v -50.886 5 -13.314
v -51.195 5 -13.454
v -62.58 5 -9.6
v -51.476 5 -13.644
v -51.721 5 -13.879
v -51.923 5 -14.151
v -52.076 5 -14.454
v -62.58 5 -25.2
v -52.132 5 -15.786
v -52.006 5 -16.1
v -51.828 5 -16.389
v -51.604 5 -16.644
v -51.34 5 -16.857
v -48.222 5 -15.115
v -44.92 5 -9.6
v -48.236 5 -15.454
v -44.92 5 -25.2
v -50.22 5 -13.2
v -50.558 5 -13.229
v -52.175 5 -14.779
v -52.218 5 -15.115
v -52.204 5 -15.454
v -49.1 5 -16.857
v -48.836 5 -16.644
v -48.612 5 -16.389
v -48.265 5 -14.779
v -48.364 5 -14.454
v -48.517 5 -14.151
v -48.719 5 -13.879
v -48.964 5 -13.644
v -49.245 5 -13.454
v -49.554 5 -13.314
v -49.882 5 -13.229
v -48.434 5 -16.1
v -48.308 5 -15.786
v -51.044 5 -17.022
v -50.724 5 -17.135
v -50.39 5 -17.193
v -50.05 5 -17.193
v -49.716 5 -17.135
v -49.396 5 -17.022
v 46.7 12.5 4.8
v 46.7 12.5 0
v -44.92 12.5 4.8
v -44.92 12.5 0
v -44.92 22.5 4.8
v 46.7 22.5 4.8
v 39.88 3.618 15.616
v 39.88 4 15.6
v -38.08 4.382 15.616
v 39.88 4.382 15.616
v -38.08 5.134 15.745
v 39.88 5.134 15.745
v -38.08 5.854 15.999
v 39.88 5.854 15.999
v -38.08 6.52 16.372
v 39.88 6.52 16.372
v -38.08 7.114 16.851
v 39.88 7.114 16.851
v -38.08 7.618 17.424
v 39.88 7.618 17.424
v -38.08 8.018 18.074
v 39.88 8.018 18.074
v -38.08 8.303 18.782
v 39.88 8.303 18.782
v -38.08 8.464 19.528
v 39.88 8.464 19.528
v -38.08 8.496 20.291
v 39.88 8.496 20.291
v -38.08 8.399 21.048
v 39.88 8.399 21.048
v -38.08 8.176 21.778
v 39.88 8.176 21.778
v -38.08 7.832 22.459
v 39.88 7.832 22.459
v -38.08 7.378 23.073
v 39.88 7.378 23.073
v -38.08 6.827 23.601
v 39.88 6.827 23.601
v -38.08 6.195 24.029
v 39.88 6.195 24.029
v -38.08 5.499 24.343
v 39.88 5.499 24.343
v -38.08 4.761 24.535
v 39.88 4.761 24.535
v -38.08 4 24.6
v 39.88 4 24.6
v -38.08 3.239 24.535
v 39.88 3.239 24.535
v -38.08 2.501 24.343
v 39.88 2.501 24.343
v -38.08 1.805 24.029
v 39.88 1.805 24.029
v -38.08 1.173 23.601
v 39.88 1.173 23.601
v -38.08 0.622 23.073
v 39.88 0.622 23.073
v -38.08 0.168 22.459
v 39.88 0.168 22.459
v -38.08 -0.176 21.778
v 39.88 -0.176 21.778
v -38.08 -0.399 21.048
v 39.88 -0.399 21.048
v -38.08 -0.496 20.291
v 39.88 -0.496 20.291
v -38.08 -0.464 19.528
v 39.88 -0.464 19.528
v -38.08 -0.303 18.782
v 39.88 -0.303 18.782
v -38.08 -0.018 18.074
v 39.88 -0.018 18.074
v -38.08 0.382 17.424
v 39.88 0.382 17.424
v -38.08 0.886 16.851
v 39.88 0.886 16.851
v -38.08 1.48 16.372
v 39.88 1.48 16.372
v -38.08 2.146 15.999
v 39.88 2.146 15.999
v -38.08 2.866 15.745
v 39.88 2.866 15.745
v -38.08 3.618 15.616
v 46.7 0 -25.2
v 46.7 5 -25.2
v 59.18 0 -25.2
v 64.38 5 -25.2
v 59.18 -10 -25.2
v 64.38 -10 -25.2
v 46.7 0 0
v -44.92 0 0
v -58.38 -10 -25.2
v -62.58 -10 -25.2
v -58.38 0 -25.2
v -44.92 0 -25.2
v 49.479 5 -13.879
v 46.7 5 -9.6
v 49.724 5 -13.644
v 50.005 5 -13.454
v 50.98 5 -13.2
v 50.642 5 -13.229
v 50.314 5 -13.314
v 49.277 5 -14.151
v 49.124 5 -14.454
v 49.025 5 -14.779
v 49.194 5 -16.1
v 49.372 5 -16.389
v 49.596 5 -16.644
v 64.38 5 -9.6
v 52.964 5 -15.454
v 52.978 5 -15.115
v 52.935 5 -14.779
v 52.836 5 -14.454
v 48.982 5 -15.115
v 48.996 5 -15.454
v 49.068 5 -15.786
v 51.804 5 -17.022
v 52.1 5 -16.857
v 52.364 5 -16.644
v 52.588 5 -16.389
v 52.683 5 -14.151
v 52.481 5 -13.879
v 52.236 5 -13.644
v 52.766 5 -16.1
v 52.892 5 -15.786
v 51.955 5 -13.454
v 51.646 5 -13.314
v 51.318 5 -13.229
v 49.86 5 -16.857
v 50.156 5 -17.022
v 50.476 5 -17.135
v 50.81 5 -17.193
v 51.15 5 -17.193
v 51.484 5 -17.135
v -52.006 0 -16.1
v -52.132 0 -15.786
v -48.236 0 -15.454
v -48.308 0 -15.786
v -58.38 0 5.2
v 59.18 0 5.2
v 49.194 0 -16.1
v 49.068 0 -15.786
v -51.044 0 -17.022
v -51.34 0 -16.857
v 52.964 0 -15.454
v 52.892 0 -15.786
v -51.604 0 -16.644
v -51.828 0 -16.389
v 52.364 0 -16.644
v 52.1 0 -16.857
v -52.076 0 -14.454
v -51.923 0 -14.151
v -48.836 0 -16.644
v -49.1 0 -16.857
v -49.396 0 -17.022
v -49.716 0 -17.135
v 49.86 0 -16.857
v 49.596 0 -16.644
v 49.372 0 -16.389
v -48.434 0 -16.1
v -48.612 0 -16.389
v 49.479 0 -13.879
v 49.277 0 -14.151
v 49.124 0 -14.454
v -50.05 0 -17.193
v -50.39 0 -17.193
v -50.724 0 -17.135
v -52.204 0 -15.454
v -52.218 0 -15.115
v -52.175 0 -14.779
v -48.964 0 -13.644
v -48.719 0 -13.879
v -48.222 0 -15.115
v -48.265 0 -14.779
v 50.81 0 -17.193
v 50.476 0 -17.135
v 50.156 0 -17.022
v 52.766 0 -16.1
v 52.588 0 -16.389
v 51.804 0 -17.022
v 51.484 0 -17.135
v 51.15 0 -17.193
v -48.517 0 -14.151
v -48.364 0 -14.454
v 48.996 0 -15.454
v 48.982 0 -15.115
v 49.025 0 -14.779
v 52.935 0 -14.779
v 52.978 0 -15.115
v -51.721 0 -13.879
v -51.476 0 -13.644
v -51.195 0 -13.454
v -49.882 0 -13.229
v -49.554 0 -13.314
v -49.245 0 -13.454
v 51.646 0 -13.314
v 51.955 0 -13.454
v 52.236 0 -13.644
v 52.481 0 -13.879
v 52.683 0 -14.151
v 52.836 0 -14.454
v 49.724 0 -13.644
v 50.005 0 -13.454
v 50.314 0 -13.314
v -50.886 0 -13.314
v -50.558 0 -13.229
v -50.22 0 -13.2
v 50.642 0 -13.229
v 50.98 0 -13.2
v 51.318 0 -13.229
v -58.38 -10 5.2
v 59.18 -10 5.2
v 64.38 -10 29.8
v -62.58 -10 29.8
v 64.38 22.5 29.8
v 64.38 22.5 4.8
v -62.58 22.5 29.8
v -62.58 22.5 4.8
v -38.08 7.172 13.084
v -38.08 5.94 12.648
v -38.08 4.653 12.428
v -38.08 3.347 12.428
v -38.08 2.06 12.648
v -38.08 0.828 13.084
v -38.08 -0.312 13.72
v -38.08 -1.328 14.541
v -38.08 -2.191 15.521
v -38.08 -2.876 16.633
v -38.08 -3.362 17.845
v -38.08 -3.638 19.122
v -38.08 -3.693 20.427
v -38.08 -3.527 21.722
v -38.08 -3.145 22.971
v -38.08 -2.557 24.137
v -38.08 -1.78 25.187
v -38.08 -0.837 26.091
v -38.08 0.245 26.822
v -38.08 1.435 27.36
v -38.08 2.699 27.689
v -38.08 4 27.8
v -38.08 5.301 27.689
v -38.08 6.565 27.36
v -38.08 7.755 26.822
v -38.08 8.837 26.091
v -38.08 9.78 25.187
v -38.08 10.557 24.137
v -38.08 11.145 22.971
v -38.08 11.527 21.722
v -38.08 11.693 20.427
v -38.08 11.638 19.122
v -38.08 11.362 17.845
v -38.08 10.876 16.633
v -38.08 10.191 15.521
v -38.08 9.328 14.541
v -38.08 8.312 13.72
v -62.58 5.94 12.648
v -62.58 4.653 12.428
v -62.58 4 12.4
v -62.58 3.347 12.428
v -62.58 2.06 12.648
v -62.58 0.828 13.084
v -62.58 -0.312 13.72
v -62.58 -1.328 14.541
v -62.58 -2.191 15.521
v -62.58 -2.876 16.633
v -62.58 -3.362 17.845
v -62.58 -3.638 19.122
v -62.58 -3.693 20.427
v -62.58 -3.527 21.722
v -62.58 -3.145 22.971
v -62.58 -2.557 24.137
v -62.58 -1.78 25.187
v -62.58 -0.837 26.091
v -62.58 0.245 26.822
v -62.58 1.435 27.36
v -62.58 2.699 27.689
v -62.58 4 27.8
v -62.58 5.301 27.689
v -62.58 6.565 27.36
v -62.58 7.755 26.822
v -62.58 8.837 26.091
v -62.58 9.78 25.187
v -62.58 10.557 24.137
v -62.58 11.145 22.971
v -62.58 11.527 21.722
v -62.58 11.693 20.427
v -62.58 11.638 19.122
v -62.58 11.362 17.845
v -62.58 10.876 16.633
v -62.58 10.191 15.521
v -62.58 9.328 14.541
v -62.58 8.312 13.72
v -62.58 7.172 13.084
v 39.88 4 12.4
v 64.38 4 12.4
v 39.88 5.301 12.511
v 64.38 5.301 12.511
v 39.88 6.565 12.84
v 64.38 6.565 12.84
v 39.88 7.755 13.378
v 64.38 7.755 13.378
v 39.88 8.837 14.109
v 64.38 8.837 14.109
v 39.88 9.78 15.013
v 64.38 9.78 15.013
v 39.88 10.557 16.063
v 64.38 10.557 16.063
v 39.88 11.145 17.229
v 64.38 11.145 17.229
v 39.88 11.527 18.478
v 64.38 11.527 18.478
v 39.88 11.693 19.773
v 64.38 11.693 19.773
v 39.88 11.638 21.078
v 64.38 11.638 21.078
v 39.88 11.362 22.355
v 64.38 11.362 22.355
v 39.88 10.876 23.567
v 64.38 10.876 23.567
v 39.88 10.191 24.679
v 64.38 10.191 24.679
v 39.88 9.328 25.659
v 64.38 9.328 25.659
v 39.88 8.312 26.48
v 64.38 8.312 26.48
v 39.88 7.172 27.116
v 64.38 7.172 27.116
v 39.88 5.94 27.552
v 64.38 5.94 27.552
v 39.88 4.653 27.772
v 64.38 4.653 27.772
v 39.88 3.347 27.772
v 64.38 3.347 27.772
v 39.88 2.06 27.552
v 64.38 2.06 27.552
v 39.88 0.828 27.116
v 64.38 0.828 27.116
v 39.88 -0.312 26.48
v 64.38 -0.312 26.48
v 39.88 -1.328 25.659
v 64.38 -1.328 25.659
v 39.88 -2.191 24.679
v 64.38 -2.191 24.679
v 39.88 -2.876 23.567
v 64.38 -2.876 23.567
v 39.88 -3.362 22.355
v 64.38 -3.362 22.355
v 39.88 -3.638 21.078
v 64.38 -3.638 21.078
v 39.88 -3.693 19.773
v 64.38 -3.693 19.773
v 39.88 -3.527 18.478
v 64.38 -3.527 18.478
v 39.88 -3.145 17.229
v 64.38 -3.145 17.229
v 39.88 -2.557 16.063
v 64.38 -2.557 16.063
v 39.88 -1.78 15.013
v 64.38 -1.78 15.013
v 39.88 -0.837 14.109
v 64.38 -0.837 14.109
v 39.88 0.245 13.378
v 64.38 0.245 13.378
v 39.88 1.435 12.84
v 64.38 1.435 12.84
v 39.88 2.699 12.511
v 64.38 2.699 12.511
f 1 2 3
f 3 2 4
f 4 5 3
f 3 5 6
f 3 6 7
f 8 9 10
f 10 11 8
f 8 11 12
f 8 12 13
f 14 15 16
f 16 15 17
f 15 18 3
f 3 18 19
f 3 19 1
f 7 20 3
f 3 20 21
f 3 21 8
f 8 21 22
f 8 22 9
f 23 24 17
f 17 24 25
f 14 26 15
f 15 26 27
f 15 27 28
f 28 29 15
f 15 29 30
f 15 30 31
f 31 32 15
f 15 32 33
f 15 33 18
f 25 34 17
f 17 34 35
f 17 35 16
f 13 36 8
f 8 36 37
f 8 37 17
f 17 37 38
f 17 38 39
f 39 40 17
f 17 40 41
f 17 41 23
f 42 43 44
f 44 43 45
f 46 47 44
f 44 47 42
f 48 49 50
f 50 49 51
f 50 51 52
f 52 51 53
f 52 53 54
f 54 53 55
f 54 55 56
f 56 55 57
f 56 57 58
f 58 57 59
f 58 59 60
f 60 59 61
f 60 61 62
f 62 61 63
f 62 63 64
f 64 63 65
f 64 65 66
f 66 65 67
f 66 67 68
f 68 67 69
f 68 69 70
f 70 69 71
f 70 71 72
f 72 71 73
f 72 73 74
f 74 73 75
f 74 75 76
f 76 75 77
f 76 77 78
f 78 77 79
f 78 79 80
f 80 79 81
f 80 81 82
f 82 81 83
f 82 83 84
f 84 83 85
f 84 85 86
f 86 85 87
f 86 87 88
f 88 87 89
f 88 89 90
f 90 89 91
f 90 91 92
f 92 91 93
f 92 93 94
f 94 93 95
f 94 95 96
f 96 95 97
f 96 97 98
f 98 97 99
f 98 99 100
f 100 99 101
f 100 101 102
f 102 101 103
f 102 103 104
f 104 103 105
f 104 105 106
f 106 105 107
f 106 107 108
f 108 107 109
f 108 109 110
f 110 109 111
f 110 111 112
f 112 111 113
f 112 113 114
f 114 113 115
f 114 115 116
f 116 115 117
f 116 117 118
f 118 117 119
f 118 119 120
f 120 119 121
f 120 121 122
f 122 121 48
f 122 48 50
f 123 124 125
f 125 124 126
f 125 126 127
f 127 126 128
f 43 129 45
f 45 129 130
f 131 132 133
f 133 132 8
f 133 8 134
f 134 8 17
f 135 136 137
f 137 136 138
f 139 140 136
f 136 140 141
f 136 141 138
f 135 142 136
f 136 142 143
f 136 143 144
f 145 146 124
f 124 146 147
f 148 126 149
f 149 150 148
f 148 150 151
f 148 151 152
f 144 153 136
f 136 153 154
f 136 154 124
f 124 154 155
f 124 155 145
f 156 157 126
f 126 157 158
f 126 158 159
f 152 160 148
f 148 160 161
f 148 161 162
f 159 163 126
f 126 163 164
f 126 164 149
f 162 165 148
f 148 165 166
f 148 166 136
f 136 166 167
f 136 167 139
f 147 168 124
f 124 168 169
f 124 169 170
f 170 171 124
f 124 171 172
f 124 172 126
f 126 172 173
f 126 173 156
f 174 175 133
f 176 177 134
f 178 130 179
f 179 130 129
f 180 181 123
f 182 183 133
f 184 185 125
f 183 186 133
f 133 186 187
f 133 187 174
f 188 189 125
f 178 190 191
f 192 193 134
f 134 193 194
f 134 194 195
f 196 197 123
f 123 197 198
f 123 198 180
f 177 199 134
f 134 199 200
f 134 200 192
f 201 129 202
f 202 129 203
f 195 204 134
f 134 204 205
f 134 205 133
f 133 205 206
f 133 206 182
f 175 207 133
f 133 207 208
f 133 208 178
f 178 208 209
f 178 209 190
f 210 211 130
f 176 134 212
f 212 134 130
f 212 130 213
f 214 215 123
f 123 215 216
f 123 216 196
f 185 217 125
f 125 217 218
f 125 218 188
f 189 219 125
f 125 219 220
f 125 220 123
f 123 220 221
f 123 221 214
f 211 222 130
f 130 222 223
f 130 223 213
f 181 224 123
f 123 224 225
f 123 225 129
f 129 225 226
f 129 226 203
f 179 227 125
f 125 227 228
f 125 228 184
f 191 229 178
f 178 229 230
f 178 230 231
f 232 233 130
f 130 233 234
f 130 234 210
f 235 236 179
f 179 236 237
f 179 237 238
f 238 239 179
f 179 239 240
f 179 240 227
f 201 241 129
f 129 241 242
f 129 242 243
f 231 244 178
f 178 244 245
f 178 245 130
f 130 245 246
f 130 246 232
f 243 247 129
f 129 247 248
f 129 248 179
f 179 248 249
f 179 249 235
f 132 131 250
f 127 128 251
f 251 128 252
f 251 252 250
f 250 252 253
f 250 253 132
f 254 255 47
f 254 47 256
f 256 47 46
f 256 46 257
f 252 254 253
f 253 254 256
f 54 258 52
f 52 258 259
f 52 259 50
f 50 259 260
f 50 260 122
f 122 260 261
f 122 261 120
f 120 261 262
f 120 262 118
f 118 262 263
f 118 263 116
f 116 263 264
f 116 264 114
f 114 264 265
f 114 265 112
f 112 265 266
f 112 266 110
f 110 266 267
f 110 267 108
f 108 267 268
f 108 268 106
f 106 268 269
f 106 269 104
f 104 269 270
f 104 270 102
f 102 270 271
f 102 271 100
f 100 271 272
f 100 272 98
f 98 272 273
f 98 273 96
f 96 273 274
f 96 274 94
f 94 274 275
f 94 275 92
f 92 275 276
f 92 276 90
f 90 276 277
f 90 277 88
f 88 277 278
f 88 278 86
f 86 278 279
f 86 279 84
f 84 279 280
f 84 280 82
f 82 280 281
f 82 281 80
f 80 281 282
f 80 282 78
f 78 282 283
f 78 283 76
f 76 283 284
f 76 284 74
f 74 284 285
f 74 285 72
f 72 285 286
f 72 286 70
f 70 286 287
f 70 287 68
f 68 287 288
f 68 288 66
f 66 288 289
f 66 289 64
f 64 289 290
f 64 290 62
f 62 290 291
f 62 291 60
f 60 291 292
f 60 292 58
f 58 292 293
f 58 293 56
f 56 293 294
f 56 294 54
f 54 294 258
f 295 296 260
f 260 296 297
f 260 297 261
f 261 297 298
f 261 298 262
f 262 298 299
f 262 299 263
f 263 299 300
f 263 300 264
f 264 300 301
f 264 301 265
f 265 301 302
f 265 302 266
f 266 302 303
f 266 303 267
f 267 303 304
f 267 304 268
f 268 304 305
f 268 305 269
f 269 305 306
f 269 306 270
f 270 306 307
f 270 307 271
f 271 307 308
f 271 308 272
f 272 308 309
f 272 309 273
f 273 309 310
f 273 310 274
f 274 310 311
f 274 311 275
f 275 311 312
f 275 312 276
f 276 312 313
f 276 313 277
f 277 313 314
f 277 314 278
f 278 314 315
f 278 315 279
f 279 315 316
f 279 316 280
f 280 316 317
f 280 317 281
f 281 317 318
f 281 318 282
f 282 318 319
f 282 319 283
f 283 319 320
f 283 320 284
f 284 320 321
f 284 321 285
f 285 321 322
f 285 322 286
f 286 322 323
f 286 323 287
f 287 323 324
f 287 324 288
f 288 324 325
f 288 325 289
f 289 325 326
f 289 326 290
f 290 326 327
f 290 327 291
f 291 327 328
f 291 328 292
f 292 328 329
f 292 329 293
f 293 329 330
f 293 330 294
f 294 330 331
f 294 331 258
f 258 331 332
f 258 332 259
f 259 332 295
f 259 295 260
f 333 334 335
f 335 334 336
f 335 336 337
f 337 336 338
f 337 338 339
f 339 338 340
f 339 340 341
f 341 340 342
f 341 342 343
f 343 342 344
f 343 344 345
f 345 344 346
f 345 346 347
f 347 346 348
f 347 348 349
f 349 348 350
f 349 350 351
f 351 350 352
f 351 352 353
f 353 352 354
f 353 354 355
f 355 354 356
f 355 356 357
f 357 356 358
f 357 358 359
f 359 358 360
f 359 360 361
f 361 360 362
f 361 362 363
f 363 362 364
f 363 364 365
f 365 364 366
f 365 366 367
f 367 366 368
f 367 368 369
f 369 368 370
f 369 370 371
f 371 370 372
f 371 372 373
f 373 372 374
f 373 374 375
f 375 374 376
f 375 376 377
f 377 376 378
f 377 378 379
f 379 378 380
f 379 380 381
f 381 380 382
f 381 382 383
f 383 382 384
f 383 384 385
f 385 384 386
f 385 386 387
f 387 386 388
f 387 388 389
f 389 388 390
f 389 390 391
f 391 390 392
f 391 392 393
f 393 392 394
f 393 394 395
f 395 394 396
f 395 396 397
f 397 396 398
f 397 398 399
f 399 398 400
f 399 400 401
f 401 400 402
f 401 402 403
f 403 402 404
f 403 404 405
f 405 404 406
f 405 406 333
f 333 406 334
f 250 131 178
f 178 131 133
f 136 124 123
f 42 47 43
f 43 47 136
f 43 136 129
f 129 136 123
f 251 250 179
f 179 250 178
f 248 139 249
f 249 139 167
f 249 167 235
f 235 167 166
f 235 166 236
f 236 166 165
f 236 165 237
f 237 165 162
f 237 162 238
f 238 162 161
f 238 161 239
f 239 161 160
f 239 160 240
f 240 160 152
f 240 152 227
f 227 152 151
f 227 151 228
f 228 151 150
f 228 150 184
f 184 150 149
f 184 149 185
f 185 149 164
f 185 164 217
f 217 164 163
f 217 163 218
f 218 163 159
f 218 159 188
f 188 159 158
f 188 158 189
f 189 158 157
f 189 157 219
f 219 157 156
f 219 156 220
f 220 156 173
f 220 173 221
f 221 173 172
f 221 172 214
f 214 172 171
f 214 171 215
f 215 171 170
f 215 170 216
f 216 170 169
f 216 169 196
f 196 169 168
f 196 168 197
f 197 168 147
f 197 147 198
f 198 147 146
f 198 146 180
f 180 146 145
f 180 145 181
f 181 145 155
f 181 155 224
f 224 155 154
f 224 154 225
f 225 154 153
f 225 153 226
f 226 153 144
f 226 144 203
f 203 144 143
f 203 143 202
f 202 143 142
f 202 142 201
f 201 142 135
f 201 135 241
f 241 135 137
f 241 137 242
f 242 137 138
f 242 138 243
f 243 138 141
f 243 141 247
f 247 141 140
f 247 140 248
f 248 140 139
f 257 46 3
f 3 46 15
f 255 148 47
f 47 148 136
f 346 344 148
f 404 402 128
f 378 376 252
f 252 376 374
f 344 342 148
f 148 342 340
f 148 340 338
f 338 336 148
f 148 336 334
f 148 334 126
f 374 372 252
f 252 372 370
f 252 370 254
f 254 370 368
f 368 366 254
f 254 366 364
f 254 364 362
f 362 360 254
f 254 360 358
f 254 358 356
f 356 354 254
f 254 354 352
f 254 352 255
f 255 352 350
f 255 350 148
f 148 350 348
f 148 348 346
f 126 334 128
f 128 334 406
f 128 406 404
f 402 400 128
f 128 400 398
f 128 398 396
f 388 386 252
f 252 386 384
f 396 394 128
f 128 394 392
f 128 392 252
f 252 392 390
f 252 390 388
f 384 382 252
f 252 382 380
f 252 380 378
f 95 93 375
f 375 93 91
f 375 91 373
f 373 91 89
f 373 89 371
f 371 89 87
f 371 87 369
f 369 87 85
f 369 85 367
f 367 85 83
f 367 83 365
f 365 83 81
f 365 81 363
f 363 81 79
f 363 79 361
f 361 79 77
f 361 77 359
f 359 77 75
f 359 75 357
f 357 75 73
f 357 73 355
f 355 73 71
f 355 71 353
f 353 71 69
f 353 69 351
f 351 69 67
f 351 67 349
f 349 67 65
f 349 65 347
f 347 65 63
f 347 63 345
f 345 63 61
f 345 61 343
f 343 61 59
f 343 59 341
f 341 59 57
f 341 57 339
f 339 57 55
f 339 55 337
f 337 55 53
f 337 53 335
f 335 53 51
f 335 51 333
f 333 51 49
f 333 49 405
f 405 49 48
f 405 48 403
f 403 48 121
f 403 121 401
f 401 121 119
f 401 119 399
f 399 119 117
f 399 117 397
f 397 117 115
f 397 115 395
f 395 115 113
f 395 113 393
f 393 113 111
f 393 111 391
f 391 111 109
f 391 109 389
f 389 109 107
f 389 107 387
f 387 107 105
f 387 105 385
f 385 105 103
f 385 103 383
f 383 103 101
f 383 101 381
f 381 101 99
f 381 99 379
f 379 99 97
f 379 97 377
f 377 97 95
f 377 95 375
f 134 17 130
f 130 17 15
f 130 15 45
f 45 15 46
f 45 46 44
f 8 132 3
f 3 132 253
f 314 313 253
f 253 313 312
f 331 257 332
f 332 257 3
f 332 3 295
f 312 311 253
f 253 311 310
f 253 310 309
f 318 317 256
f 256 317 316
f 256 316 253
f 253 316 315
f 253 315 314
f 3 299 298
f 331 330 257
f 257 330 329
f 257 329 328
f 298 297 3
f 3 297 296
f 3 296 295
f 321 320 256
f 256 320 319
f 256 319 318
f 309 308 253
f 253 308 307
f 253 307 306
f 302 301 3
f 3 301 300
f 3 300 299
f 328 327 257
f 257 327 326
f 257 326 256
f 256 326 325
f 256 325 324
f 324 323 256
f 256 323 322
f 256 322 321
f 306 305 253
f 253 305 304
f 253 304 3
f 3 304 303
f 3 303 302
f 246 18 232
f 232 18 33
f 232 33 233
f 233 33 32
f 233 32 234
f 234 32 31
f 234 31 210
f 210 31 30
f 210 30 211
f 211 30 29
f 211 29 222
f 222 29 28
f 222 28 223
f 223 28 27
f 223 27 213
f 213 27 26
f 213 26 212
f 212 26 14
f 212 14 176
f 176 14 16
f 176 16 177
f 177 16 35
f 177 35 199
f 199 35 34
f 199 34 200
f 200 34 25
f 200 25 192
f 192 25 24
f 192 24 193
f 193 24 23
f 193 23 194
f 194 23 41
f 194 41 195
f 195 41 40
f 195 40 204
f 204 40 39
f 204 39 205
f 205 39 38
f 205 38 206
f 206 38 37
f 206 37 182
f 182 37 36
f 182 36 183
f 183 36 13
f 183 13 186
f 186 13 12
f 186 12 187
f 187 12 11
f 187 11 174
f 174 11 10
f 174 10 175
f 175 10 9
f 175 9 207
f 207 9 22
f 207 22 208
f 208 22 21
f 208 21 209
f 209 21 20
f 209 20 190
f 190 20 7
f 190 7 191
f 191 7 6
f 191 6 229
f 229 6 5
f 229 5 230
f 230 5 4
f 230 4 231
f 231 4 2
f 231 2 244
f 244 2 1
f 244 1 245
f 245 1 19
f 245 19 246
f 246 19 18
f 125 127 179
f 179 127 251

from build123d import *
from build123d.topology import SkipClean

# Parameters (mm, degrees)
SALIENTE_EXTRUIR1_DEPTH  = 5
SALIENTE_EXTRUIR3_DEPTH  = 5
SALIENTE_EXTRUIR4_DEPTH  = 12.5
CROQUIS2_W               = 12.6
CROQUIS2_H               = 5
CORTAR_EXTRUIR1_DEPTH    = 127.5
CROQUIS3_W               = 4.8
CROQUIS3_H               = 5
CORTAR_EXTRUIR2_DEPTH    = 255
CROQUIS4_W               = 116.76
CROQUIS4_H               = 32.5
SALIENTE_EXTRUIR5_DEPTH  = 25
CROQUIS5_R               = 4.5
CORTAR_EXTRUIR3_DEPTH    = 155
CROQUIS6_R               = 7.7
CORTAR_EXTRUIR4_DEPTH    = 20.3
CROQUIS7_R               = 7.7
SALIENTE_EXTRUIR6_DEPTH  = 5
CORTAR_EXTRUIR5_DEPTH    = 25.2
CROQUIS9_W               = 1
CROQUIS9_H               = 10
CORTAR_EXTRUIR6_DEPTH    = 4.8
CROQUIS10_W              = 117.76
CROQUIS10_H              = 0.4
CORTAR_EXTRUIR7_DEPTH    = 10
CROQUIS11_R              = 2
CORTAR_EXTRUIR8_DEPTH    = 10
CROQUIS12_W              = 3
CROQUIS12_H              = 7.5
CORTAR_EXTRUIR9_DEPTH    = 220
CORTAR_EXTRUIR10_DEPTH   = 220
SALIENTE_EXTRUIR7_DEPTH  = 16.68
SALIENTE_EXTRUIR8_START  = 1
CROQUIS15_R              = 7.7
SALIENTE_EXTRUIR8_DEPTH  = 1
SALIENTE_EXTRUIR9_START  = 1.8
CROQUIS16_R              = 7.7
CROQUIS16_R_2            = 4.5
SALIENTE_EXTRUIR9_DEPTH  = 1.8
SALIENTE_EXTRUIR10_DEPTH = 1
CROQUIS18_W              = 0.78
CROQUIS18_H              = 5
SALIENTE_EXTRUIR11_DEPTH = 31
SALIENTE_EXTRUIR12_DEPTH = 0.78
CORTAR_EXTRUIR11_DEPTH   = 220.78
CROQUIS21_R              = 2
CORTAR_EXTRUIR12_DEPTH   = 220.78
CROQUIS22_W              = 0.2
CROQUIS22_H              = 10
SALIENTE_EXTRUIR13_DEPTH = 30.78


with BuildPart() as part:
    # Croquis1 → Saliente-Extruir1 (new body)
    with BuildSketch(Plane(origin=(0, 0, 0), x_dir=(1, 0, 0), z_dir=(0, 1, 0))):
        Polygon((-45.7, 25.2), (-58.38, 25.2), (-58.38, -4.8), (58.38, -4.8), (58.38, 25.2), (45.7, 25.2), (45.7, 0), (-45.7, 0), align=None)
    extrude(amount=SALIENTE_EXTRUIR1_DEPTH)

    # Croquis1<4> → Saliente-Extruir3 (add)
    with BuildSketch(Plane(origin=(0, 0, 0), x_dir=(1, 0, 0), z_dir=(0, 1, 0))):
        Polygon((-45.7, 12.6), (-58.38, 12.6), (-58.38, -4.8), (58.38, -4.8), (58.38, 12.6), (45.7, 12.6), (45.7, 0), (-45.7, 0), align=None)
    extrude(amount=-SALIENTE_EXTRUIR3_DEPTH)

    # Croquis1<5> → Saliente-Extruir4 (add)
    with BuildSketch(Plane(origin=(0, 0, 0), x_dir=(1, 0, 0), z_dir=(0, 1, 0))):
        Polygon((-45.7, 12.6), (-58.38, 12.6), (-58.38, -4.8), (58.38, -4.8), (58.38, 12.6), (45.7, 12.6), (45.7, 0), (-45.7, 0), align=None)
    extrude(amount=SALIENTE_EXTRUIR4_DEPTH)

    # Croquis2 → Cortar-Extruir1 (cut, symmetric)
    with BuildSketch(Plane.ZY.offset(-45.7)):
        with Locations((-6.3, -2.5)):
            Rectangle(CROQUIS2_W, CROQUIS2_H)
    extrude(amount=CORTAR_EXTRUIR1_DEPTH, both=True, mode=Mode.SUBTRACT)

    # Croquis3 → Cortar-Extruir2 (cut)
    with BuildSketch(Plane.ZY.offset(58.38)):
        with Locations((2.4, -2.5)):
            Rectangle(CROQUIS3_W, CROQUIS3_H)
    extrude(amount=-CORTAR_EXTRUIR2_DEPTH, mode=Mode.SUBTRACT)

    # Croquis4 → Saliente-Extruir5 (add)
    with BuildSketch(Plane.XY.offset(4.8)):
        with Locations((0, 6.25)):
            Rectangle(CROQUIS4_W, CROQUIS4_H)
    extrude(amount=SALIENTE_EXTRUIR5_DEPTH)

    # Croquis5 → Cortar-Extruir3 (cut)
    with BuildSketch(Plane.ZY.offset(58.38)):
        with Locations((20.1, 4)):
            Circle(CROQUIS5_R)
    extrude(amount=-CORTAR_EXTRUIR3_DEPTH, mode=Mode.SUBTRACT)

    # Croquis6 → Cortar-Extruir4 (cut)
    with BuildSketch(Plane.ZY.offset(58.38)):
        with Locations((20.1, 4)):
            Circle(CROQUIS6_R)
    cortar_extruir4 = extrude(amount=-CORTAR_EXTRUIR4_DEPTH, mode=Mode.SUBTRACT)

    # Simetría1: Cortar-Extruir4 across plane
    add(cortar_extruir4.mirror(Plane(origin=(0, 0, 0), x_dir=(0, 0, 1), z_dir=(1, 0, 0))), mode=Mode.SUBTRACT)

    # Croquis7 → Saliente-Extruir6 (add)
    with BuildSketch(Plane.ZY.offset(58.38)):
        Polygon((-25.2, 5), (-25.2, -10), (29.8, -10), (29.8, 22.5), (4.8, 22.5), (4.8, 12.5), (-12.6, 12.5), (-12.6, 5), align=None)
        with Locations((20.1, 4)):
            Circle(CROQUIS7_R, mode=Mode.SUBTRACT)
    saliente_extruir6 = extrude(amount=SALIENTE_EXTRUIR6_DEPTH)

    # Simetría2: Saliente-Extruir6 across plane
    add(saliente_extruir6.mirror(Plane(origin=(0, 0, 0), x_dir=(0, 0, 1), z_dir=(1, 0, 0))))

    # Croquis8 → Cortar-Extruir5 (cut)
    with BuildSketch(Plane(origin=(0, 0, -25.2), x_dir=(-1, 0, 0), z_dir=(0, 0, -1))):
        Polygon((-58.38, -10), (-59.38, -10), (-59.38, 0), (-58.38, 0), (-46.7, 0), (-46.7, 5), (-46.7, 12.5), (-42.184789705, 12.5), (-42.184789705, -10), align=None)
    extrude(amount=-CORTAR_EXTRUIR5_DEPTH, mode=Mode.SUBTRACT)

    # Croquis9 → Cortar-Extruir6 (cut)
    with BuildSketch(Plane(origin=(0, 0, 0), x_dir=(-1, 0, 0), z_dir=(0, 0, -1))):
        with Locations((-58.88, -5)):
            Rectangle(CROQUIS9_W, CROQUIS9_H)
    extrude(amount=-CORTAR_EXTRUIR6_DEPTH, mode=Mode.SUBTRACT)

    # Croquis10 → Cortar-Extruir7 (cut)
    with BuildSketch(Plane.XZ.offset(10)):
        with Locations((0.5, 5)):
            Rectangle(CROQUIS10_W, CROQUIS10_H)
    extrude(amount=-CORTAR_EXTRUIR7_DEPTH, mode=Mode.SUBTRACT)

    # Croquis11 → Cortar-Extruir8 (cut)
    with BuildSketch(Plane(origin=(0, 5, 0), x_dir=(1, 0, 0), z_dir=(0, 1, 0))):
        with Locations((50.98, 15.2)):
            Circle(CROQUIS11_R)
    extrude(amount=-CORTAR_EXTRUIR8_DEPTH, mode=Mode.SUBTRACT)

    # Croquis12 → Cortar-Extruir9 (cut)
    with BuildSketch(Plane(origin=(63.38, 0, 0), x_dir=(0, 0, -1), z_dir=(1, 0, 0))):
        with Locations((11.1, 8.75)):
            Rectangle(CROQUIS12_W, CROQUIS12_H)
    extrude(amount=-CORTAR_EXTRUIR9_DEPTH, mode=Mode.SUBTRACT)

    # Croquis13 → Cortar-Extruir10 (cut)
    with BuildSketch(Plane(origin=(63.38, 0, 0), x_dir=(0, 0, -1), z_dir=(1, 0, 0))):
        Polygon((9.6, 12.5), (9.6, 5), (-4.8, 22.5), (9.6, 22.5), align=None)
    extrude(amount=-CORTAR_EXTRUIR10_DEPTH, mode=Mode.SUBTRACT)

    # Croquis14 → Saliente-Extruir7 (add)
    with BuildSketch(Plane(origin=(63.38, 0, 0), x_dir=(0, 0, -1), z_dir=(1, 0, 0))):
        Polygon((-4.8, 22.5), (3.428571429, 12.5), (-4.8, 12.5), align=None)
    saliente_extruir7 = extrude(amount=-SALIENTE_EXTRUIR7_DEPTH)

    # Simetría4: Saliente-Extruir7 across plane
    add(saliente_extruir7.mirror(Plane(origin=(0, 0, 0), x_dir=(0, 0, 1), z_dir=(1, 0, 0))))

    # Croquis15 → Saliente-Extruir8 (add)
    with SkipClean():  # the faces are left unmerged after this step: merging them gives an invalid solid
        with BuildSketch(Plane(origin=(63.38, 0, 0), x_dir=(0, 0, -1), z_dir=(1, 0, 0)).offset(SALIENTE_EXTRUIR8_START)):
            Polygon((-29.8, 22.5), (-4.8, 22.5), (9.6, 5), (25.2, 5), (25.2, -10), (-29.8, -10), align=None)
            with Locations((-20.1, 4)):
                Circle(CROQUIS15_R, mode=Mode.SUBTRACT)
        extrude(amount=-SALIENTE_EXTRUIR8_DEPTH)

    # Croquis16 → Saliente-Extruir9 (add)
    with BuildSketch(Plane(origin=(38.08, 0, 0), x_dir=(0, 0, -1), z_dir=(1, 0, 0)).offset(SALIENTE_EXTRUIR9_START)):
        with Locations((-20.1, 4)):
            Circle(CROQUIS16_R)
        with Locations((-20.1, 4)):
            Circle(CROQUIS16_R_2, mode=Mode.SUBTRACT)
    extrude(amount=-SALIENTE_EXTRUIR9_DEPTH)

    # Croquis17 → Saliente-Extruir10 (add)
    with BuildSketch(Plane(origin=(-46.7, 0, 0), x_dir=(0, 0, -1), z_dir=(1, 0, 0))):
        Polygon((-4.8, 12.5), (3.428571429, 12.5), (-4.8, 22.5), align=None)
    extrude(amount=SALIENTE_EXTRUIR10_DEPTH)

    # Croquis18 → Saliente-Extruir11 (add)
    with BuildSketch(Plane(origin=(0, 0, -25.2), x_dir=(-1, 0, 0), z_dir=(0, 0, -1))):
        with Locations((45.31, 2.5)):
            Rectangle(CROQUIS18_W, CROQUIS18_H)
    extrude(amount=-SALIENTE_EXTRUIR11_DEPTH)

    # Croquis19 → Saliente-Extruir12 (add)
    with BuildSketch(Plane(origin=(-45.7, 0, 0), x_dir=(0, 0, -1), z_dir=(1, 0, 0))):
        Polygon((0, 5), (9.6, 5), (-4.8, 22.5), (-4.8, 12.5), (0, 12.5), align=None)
    extrude(amount=SALIENTE_EXTRUIR12_DEPTH)

    # Croquis20 → Cortar-Extruir11 (cut)
    with BuildSketch(Plane(origin=(0, 0, -25.2), x_dir=(-1, 0, 0), z_dir=(0, 0, -1))):
        Polygon((63.38, -10), (62.58, -10), (62.58, 24.783084916), (64.574370111, 24.783084916), (64.574370111, -10), align=None)
    extrude(amount=-CORTAR_EXTRUIR11_DEPTH, mode=Mode.SUBTRACT)

    # Croquis21 → Cortar-Extruir12 (cut)
    with BuildSketch(Plane(origin=(0, 5, 0), x_dir=(1, 0, 0), z_dir=(0, 1, 0))):
        with Locations((-50.22, 15.2)):
            Circle(CROQUIS21_R)
    extrude(amount=-CORTAR_EXTRUIR12_DEPTH, mode=Mode.SUBTRACT)

    # Croquis22 → Saliente-Extruir13 (add)
    with BuildSketch(Plane(origin=(0, 0, -25.2), x_dir=(-1, 0, 0), z_dir=(0, 0, -1))):
        with Locations((-59.28, -5)):
            Rectangle(CROQUIS22_W, CROQUIS22_H)
    extrude(amount=-SALIENTE_EXTRUIR13_DEPTH)


solid = part.part
